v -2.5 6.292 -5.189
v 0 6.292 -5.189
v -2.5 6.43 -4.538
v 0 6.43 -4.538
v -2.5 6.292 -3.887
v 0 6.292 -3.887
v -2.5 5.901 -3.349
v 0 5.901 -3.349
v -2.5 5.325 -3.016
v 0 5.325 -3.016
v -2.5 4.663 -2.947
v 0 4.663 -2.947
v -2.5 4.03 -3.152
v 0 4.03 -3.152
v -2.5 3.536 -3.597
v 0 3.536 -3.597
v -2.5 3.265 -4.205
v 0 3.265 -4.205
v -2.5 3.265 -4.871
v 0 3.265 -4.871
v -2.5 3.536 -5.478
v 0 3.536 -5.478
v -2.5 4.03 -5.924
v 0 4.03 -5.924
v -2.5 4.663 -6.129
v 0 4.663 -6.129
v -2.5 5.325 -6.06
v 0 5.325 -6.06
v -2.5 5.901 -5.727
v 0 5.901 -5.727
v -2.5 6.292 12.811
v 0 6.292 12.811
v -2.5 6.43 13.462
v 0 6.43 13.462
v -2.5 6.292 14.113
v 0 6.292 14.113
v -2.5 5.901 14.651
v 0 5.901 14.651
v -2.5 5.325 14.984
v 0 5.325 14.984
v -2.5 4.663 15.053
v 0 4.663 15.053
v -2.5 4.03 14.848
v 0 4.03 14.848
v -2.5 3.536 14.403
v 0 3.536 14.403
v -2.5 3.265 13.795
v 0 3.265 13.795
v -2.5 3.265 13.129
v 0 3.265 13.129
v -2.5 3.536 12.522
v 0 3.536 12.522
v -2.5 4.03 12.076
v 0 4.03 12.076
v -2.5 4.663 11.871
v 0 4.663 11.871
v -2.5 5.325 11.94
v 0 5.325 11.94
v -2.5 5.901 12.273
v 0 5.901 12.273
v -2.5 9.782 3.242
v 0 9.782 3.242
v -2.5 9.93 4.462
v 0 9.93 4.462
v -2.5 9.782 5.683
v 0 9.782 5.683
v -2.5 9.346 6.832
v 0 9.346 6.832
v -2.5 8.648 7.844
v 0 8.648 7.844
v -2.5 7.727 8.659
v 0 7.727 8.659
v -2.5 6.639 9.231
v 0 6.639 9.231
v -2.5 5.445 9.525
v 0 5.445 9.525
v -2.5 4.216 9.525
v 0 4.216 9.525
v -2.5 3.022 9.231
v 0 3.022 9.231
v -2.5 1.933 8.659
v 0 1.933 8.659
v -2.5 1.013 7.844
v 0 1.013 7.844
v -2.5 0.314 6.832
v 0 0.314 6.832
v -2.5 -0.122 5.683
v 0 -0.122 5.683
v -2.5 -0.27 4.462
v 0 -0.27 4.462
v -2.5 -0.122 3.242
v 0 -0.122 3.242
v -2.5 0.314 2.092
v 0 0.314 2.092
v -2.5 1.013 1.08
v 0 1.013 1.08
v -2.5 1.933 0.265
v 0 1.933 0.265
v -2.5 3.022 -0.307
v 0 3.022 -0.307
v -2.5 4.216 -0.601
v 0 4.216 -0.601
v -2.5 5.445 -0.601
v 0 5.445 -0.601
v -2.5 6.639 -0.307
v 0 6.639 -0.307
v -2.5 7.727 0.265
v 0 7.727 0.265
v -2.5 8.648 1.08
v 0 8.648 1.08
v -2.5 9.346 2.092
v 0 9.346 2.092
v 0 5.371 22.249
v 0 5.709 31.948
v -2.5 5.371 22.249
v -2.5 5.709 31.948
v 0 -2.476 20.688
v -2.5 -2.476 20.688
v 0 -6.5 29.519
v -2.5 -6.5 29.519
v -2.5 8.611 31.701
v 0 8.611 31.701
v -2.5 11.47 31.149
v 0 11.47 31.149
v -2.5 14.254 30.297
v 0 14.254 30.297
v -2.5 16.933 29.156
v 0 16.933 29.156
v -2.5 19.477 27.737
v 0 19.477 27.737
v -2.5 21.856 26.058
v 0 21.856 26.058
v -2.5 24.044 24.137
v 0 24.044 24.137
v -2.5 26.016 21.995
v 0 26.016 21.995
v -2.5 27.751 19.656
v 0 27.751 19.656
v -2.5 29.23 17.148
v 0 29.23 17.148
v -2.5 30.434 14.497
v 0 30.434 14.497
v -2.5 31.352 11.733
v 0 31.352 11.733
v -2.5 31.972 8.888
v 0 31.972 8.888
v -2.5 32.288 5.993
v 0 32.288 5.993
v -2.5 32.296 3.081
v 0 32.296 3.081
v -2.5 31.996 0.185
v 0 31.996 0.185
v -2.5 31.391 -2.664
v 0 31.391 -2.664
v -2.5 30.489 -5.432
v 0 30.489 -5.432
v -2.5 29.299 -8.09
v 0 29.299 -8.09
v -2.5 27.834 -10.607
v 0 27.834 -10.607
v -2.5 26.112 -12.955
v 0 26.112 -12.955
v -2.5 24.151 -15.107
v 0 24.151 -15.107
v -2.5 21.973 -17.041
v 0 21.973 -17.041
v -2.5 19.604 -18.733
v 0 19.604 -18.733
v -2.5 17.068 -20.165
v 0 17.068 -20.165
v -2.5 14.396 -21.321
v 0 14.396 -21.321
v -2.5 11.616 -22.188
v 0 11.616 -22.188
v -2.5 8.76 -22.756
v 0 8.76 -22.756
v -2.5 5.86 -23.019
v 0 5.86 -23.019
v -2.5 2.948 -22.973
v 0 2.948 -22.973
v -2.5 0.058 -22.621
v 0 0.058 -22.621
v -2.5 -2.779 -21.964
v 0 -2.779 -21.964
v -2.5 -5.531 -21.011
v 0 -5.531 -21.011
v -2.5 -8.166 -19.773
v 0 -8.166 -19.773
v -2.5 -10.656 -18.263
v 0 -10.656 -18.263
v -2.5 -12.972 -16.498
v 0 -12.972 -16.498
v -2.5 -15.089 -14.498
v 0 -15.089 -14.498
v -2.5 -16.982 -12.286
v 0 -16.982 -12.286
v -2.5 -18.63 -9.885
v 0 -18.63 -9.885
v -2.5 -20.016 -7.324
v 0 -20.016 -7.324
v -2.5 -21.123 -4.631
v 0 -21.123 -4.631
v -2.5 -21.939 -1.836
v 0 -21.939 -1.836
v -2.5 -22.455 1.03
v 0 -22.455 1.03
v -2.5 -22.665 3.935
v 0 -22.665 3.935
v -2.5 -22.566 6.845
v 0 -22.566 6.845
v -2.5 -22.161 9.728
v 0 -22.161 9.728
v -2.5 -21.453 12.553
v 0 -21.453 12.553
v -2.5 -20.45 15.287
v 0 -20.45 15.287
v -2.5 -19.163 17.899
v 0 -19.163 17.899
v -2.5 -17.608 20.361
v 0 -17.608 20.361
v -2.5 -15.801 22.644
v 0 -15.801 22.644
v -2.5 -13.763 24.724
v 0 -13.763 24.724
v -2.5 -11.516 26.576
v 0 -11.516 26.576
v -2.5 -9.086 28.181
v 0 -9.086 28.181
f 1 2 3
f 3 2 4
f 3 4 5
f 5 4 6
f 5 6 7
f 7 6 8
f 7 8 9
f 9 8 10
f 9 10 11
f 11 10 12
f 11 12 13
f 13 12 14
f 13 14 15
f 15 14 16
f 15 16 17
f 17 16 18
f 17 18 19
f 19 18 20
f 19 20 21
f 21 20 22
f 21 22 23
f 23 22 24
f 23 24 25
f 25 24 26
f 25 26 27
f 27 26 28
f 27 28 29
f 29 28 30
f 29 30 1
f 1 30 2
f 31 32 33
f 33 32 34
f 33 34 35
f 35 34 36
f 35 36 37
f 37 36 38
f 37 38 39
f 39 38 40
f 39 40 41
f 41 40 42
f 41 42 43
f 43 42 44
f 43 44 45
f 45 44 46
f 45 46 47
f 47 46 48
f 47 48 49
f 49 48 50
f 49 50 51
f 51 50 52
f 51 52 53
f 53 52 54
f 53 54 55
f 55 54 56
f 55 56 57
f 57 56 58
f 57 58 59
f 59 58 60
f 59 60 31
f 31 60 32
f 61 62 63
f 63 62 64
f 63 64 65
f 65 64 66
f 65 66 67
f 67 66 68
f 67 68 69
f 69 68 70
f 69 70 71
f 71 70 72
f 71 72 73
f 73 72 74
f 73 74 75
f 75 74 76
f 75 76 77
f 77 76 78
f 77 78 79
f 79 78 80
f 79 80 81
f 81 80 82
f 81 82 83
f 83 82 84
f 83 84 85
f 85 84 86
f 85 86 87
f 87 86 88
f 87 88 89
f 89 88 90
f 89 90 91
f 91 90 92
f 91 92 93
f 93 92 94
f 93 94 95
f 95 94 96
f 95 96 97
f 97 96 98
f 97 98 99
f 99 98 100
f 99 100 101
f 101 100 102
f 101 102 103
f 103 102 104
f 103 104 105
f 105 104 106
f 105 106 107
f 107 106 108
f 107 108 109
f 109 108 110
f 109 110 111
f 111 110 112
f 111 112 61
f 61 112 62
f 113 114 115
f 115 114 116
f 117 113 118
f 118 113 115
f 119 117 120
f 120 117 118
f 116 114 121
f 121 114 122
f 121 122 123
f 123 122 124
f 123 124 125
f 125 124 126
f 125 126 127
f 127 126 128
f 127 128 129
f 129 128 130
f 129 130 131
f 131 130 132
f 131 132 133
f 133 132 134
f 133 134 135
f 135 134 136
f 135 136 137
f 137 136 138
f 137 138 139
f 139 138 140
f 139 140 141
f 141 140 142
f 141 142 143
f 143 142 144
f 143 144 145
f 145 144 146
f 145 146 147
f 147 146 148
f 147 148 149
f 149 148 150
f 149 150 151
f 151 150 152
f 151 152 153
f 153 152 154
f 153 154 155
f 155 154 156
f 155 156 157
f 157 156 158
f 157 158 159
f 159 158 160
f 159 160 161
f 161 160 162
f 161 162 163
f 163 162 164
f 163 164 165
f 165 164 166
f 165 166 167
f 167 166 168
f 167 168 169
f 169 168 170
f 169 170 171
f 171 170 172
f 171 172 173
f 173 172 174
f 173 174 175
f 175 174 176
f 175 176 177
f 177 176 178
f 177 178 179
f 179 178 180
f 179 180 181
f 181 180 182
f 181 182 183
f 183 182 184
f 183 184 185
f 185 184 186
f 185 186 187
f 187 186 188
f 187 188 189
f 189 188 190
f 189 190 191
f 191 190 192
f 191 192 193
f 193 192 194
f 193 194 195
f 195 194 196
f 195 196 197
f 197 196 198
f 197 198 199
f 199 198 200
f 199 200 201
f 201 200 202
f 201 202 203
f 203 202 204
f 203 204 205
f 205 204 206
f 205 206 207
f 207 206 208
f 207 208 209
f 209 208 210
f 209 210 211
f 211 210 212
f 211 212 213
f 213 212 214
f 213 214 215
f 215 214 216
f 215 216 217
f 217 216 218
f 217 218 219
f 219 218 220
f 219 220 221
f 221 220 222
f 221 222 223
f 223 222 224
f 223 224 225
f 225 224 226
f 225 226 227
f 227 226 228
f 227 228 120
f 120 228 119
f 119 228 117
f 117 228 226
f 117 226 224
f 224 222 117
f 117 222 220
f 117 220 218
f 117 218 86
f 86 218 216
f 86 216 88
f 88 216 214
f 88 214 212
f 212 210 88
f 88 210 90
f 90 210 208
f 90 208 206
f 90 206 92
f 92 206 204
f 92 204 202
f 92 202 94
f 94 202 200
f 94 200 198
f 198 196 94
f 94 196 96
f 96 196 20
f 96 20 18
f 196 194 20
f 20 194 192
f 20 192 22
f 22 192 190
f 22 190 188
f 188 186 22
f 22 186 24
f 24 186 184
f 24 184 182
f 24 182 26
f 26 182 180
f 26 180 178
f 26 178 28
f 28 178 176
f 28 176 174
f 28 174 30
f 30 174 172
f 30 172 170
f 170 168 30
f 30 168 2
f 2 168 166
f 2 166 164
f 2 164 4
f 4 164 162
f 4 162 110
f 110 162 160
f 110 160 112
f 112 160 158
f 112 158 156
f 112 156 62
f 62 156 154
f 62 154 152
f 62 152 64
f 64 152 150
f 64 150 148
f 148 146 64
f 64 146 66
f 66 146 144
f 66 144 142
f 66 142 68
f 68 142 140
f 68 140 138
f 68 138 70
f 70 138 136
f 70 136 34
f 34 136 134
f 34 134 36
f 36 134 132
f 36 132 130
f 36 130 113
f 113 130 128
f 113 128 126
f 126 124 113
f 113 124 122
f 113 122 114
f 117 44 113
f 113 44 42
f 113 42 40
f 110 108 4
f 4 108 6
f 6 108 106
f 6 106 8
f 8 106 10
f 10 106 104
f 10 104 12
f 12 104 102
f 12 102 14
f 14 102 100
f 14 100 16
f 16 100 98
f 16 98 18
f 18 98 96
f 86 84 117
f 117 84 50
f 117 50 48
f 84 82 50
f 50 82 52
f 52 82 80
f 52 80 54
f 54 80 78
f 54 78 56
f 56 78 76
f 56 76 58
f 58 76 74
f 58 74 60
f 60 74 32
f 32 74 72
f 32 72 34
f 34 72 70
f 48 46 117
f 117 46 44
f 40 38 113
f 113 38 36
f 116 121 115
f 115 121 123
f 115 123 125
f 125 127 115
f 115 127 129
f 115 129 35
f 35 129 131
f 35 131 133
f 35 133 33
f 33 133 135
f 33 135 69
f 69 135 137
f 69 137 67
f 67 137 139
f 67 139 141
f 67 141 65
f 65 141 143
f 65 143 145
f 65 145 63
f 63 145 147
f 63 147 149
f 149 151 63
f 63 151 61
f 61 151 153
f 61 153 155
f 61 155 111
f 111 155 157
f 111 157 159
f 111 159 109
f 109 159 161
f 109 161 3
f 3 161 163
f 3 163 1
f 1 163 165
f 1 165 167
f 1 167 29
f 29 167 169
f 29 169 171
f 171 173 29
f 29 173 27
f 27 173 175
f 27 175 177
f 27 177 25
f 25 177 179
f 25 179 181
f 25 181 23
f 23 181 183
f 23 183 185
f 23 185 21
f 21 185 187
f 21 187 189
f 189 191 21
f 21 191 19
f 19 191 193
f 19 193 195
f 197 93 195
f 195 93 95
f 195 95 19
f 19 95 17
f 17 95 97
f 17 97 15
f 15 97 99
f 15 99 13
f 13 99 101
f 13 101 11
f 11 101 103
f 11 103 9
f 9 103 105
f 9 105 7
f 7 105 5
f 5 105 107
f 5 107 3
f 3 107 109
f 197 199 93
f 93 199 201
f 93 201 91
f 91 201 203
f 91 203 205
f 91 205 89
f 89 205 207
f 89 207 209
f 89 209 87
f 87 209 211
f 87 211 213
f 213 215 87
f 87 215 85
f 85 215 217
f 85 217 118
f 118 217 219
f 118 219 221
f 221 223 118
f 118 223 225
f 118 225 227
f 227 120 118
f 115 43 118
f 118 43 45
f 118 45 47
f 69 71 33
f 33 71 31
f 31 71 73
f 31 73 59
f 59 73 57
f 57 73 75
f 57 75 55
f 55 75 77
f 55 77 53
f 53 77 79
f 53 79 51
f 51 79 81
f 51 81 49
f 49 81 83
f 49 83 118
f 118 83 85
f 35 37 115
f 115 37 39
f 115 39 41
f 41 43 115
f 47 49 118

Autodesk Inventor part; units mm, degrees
ref_plane "YZ Plane" through (0, 0, 0) normal (1, 0, 0) x (0, 1, 0)
ref_plane "XZ Plane" through (0, 0, 0) normal (0, 1, 0) x (-1, 0, 0)
ref_plane "XY Plane" through (0, 0, 0) normal (0, 0, 1) x (1, 0, 0)
sketch "スケッチ1" plane through (0, 0, 0) normal (1, 0, 0) x (0, 1, 0)
  line L0 (-2.4757, 20.6884) -> (-6.5003, 29.5193)
  arc A0 (-6.5003, 29.5193) -> (5.7094, 31.948) centre (4.8303, 4.4621) ccw
  line L1 (5.7094, 31.948) -> (5.3706, 22.2491)
  line L2 (5.3706, 22.2491) -> (-2.4757, 20.6884)
  circle A1 centre (4.8303, -4.5379) radius 1.6
  circle A2 centre (4.8303, 13.4621) radius 1.6
  circle A3 centre (4.8303, 4.4621) radius 5.1
  point P0 (0, 0)
extrude "押し出し1" add sketch "スケッチ1" against normal blind 2.5
properties part number "belt_liner_v3_3DP_P-2-F" material "ABS プラスチック"
